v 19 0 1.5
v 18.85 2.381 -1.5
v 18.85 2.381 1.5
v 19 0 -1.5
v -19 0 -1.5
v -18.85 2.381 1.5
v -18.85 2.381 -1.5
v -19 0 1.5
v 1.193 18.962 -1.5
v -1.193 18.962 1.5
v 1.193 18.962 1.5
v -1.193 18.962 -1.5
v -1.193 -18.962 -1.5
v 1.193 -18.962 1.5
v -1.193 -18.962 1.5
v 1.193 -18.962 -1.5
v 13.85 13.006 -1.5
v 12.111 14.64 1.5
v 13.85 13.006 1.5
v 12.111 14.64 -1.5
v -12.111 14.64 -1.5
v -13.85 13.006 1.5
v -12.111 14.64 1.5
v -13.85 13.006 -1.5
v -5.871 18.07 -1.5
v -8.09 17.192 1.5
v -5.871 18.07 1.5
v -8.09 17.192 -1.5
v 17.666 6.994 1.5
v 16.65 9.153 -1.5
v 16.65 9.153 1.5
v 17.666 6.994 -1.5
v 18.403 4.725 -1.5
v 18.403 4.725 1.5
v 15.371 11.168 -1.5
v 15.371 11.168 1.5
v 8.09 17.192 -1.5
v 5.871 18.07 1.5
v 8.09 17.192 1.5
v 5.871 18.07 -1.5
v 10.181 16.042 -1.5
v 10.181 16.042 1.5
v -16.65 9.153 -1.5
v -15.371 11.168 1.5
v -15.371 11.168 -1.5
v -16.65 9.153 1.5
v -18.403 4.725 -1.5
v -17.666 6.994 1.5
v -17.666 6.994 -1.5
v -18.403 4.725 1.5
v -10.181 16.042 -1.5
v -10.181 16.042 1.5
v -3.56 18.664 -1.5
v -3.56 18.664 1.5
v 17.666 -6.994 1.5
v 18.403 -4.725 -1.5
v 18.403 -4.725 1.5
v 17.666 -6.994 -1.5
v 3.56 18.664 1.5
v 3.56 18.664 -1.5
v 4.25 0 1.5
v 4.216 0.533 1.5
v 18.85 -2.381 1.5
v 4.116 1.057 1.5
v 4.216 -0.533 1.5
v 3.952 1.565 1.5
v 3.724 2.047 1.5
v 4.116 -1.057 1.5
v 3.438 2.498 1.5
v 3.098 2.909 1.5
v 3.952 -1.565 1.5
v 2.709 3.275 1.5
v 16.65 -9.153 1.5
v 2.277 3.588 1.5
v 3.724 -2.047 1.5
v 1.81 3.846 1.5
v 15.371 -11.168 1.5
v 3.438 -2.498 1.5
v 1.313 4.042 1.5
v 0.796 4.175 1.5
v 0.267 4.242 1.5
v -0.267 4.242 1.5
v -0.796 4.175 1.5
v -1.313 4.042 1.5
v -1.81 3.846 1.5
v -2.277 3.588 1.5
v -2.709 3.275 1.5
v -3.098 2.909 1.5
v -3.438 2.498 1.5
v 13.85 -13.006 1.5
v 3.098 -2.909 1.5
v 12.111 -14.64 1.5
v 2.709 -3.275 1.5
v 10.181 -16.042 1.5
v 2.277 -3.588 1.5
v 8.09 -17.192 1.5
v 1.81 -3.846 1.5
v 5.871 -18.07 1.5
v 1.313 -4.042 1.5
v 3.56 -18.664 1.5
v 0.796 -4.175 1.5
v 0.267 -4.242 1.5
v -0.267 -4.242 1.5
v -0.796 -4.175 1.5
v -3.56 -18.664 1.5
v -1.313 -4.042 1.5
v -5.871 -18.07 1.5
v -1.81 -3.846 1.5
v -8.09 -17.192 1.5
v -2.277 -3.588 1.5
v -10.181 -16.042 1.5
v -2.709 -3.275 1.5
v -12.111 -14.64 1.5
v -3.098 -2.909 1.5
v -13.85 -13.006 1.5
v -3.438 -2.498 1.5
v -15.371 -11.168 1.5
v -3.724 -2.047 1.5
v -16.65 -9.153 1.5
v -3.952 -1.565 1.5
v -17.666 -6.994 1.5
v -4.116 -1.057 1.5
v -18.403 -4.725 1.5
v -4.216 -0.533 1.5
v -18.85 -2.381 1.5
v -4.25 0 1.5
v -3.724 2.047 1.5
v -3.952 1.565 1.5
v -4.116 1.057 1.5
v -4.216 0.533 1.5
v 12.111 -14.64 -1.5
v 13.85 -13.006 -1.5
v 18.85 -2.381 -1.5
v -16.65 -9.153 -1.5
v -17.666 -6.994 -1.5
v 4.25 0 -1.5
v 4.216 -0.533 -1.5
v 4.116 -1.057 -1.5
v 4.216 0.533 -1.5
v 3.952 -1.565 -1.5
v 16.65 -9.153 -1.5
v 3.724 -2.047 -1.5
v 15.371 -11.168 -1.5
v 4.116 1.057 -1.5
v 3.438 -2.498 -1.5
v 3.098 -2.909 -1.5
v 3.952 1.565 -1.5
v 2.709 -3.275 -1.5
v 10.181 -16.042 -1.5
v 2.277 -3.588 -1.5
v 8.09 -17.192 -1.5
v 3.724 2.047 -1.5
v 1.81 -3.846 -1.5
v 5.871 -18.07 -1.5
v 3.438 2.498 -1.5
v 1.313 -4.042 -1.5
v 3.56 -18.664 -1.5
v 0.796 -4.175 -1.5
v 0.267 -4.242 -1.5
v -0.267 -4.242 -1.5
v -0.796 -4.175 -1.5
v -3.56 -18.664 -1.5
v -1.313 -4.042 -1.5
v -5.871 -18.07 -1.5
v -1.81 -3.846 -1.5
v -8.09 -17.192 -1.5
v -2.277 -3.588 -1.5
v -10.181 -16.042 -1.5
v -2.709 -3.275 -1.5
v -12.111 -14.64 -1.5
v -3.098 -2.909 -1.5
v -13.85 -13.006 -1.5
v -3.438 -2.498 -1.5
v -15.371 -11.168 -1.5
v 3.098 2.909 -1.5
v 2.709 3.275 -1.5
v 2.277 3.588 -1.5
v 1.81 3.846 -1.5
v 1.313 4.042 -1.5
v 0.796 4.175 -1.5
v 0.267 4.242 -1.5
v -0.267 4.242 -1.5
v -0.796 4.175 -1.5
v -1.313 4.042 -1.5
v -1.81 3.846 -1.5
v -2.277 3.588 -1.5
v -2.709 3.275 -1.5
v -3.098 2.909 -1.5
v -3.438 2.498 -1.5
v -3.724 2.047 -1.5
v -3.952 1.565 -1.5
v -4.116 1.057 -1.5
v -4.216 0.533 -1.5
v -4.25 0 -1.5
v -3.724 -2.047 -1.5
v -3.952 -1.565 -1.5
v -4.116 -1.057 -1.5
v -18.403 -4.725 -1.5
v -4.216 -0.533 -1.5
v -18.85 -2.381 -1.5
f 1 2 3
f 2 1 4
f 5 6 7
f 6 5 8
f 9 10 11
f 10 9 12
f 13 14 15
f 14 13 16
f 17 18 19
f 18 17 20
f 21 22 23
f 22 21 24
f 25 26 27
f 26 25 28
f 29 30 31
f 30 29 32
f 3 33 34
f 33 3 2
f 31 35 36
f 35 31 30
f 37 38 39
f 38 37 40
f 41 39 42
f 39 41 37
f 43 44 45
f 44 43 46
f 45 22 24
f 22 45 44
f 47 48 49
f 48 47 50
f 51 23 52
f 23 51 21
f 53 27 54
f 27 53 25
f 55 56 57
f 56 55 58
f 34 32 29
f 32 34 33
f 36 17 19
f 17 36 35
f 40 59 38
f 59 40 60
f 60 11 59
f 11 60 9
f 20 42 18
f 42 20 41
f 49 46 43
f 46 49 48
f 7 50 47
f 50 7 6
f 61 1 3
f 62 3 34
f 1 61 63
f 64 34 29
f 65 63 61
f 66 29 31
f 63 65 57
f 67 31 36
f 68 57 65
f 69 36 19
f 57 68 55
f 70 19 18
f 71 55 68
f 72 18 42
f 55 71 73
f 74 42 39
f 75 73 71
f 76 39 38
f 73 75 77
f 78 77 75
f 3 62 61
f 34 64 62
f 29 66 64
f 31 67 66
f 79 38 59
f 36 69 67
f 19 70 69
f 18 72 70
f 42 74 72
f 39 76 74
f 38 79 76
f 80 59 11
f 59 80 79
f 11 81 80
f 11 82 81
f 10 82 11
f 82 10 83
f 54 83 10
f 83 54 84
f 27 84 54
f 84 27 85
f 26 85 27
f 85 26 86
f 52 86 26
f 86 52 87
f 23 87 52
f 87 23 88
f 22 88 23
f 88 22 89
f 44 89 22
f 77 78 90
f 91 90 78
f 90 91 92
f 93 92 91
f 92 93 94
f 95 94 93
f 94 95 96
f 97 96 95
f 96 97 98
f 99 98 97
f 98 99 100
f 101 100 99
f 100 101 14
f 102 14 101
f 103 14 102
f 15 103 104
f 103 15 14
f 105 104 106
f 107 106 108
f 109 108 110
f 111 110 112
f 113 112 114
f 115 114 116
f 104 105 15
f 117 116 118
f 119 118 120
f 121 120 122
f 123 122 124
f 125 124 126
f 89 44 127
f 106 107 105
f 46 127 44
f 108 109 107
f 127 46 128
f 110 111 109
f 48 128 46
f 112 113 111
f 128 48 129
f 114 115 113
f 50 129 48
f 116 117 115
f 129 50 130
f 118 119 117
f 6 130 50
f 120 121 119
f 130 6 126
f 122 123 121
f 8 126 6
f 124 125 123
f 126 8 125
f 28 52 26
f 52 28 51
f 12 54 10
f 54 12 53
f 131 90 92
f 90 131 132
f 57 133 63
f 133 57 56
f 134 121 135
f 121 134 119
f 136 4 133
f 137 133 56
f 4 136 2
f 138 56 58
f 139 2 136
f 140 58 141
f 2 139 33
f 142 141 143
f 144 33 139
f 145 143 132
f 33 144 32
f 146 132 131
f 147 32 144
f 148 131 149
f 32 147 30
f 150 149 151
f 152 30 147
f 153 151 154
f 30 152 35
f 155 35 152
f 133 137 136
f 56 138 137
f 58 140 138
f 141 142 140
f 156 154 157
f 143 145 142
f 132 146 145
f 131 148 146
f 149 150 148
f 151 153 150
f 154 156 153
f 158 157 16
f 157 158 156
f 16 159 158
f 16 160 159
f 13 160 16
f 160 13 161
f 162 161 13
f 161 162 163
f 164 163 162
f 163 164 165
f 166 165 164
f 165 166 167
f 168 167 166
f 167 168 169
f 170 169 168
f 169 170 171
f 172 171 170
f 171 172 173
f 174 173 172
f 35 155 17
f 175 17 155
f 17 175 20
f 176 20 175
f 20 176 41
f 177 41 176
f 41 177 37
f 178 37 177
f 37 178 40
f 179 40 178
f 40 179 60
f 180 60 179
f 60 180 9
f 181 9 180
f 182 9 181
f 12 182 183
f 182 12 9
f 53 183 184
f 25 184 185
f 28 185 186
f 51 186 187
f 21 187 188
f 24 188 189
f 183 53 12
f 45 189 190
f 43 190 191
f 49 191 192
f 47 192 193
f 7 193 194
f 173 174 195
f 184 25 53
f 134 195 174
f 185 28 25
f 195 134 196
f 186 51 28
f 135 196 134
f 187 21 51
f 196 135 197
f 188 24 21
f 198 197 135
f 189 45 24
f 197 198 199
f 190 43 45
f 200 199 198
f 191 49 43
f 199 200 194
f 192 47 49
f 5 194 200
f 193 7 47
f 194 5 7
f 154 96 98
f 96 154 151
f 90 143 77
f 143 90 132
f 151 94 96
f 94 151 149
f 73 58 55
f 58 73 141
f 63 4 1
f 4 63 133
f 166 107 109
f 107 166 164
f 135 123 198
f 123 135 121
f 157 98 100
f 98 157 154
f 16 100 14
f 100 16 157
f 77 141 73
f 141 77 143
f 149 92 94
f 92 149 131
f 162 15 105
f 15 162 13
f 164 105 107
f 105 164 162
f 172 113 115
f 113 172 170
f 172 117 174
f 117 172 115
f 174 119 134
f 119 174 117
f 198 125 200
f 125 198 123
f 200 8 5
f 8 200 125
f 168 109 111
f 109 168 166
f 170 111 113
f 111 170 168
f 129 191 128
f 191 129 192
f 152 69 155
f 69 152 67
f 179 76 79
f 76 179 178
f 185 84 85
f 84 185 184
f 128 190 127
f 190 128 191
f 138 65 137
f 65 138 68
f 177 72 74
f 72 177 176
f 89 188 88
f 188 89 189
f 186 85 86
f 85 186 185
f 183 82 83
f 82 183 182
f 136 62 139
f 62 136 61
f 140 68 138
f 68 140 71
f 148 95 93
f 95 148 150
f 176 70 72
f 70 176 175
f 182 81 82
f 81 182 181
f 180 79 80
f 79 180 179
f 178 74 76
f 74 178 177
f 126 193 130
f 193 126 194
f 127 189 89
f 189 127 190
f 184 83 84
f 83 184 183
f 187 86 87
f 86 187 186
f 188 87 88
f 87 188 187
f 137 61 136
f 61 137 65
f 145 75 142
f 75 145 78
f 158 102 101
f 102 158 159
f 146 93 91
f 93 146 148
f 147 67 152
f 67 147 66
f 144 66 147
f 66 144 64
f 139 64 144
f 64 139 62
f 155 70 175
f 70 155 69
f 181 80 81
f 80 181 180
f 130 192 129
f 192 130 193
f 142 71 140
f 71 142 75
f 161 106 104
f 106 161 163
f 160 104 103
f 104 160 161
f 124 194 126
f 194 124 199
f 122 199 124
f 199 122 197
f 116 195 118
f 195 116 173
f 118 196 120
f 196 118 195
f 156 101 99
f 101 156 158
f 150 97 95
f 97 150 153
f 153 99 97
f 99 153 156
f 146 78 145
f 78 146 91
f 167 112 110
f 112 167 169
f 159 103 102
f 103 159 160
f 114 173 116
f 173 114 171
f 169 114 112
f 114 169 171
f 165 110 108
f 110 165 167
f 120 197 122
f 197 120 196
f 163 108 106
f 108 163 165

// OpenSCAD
$fn = 50;


difference() {
	union() {
		translate(v = [0, 0, -1.5000000000]) {
			cylinder(h = 3, r = 19.0000000000);
		}
	}
	union() {
		translate(v = [0, 0, -100.0000000000]) {
			cylinder(h = 200, r = 4.2500000000);
		}
	}
}
